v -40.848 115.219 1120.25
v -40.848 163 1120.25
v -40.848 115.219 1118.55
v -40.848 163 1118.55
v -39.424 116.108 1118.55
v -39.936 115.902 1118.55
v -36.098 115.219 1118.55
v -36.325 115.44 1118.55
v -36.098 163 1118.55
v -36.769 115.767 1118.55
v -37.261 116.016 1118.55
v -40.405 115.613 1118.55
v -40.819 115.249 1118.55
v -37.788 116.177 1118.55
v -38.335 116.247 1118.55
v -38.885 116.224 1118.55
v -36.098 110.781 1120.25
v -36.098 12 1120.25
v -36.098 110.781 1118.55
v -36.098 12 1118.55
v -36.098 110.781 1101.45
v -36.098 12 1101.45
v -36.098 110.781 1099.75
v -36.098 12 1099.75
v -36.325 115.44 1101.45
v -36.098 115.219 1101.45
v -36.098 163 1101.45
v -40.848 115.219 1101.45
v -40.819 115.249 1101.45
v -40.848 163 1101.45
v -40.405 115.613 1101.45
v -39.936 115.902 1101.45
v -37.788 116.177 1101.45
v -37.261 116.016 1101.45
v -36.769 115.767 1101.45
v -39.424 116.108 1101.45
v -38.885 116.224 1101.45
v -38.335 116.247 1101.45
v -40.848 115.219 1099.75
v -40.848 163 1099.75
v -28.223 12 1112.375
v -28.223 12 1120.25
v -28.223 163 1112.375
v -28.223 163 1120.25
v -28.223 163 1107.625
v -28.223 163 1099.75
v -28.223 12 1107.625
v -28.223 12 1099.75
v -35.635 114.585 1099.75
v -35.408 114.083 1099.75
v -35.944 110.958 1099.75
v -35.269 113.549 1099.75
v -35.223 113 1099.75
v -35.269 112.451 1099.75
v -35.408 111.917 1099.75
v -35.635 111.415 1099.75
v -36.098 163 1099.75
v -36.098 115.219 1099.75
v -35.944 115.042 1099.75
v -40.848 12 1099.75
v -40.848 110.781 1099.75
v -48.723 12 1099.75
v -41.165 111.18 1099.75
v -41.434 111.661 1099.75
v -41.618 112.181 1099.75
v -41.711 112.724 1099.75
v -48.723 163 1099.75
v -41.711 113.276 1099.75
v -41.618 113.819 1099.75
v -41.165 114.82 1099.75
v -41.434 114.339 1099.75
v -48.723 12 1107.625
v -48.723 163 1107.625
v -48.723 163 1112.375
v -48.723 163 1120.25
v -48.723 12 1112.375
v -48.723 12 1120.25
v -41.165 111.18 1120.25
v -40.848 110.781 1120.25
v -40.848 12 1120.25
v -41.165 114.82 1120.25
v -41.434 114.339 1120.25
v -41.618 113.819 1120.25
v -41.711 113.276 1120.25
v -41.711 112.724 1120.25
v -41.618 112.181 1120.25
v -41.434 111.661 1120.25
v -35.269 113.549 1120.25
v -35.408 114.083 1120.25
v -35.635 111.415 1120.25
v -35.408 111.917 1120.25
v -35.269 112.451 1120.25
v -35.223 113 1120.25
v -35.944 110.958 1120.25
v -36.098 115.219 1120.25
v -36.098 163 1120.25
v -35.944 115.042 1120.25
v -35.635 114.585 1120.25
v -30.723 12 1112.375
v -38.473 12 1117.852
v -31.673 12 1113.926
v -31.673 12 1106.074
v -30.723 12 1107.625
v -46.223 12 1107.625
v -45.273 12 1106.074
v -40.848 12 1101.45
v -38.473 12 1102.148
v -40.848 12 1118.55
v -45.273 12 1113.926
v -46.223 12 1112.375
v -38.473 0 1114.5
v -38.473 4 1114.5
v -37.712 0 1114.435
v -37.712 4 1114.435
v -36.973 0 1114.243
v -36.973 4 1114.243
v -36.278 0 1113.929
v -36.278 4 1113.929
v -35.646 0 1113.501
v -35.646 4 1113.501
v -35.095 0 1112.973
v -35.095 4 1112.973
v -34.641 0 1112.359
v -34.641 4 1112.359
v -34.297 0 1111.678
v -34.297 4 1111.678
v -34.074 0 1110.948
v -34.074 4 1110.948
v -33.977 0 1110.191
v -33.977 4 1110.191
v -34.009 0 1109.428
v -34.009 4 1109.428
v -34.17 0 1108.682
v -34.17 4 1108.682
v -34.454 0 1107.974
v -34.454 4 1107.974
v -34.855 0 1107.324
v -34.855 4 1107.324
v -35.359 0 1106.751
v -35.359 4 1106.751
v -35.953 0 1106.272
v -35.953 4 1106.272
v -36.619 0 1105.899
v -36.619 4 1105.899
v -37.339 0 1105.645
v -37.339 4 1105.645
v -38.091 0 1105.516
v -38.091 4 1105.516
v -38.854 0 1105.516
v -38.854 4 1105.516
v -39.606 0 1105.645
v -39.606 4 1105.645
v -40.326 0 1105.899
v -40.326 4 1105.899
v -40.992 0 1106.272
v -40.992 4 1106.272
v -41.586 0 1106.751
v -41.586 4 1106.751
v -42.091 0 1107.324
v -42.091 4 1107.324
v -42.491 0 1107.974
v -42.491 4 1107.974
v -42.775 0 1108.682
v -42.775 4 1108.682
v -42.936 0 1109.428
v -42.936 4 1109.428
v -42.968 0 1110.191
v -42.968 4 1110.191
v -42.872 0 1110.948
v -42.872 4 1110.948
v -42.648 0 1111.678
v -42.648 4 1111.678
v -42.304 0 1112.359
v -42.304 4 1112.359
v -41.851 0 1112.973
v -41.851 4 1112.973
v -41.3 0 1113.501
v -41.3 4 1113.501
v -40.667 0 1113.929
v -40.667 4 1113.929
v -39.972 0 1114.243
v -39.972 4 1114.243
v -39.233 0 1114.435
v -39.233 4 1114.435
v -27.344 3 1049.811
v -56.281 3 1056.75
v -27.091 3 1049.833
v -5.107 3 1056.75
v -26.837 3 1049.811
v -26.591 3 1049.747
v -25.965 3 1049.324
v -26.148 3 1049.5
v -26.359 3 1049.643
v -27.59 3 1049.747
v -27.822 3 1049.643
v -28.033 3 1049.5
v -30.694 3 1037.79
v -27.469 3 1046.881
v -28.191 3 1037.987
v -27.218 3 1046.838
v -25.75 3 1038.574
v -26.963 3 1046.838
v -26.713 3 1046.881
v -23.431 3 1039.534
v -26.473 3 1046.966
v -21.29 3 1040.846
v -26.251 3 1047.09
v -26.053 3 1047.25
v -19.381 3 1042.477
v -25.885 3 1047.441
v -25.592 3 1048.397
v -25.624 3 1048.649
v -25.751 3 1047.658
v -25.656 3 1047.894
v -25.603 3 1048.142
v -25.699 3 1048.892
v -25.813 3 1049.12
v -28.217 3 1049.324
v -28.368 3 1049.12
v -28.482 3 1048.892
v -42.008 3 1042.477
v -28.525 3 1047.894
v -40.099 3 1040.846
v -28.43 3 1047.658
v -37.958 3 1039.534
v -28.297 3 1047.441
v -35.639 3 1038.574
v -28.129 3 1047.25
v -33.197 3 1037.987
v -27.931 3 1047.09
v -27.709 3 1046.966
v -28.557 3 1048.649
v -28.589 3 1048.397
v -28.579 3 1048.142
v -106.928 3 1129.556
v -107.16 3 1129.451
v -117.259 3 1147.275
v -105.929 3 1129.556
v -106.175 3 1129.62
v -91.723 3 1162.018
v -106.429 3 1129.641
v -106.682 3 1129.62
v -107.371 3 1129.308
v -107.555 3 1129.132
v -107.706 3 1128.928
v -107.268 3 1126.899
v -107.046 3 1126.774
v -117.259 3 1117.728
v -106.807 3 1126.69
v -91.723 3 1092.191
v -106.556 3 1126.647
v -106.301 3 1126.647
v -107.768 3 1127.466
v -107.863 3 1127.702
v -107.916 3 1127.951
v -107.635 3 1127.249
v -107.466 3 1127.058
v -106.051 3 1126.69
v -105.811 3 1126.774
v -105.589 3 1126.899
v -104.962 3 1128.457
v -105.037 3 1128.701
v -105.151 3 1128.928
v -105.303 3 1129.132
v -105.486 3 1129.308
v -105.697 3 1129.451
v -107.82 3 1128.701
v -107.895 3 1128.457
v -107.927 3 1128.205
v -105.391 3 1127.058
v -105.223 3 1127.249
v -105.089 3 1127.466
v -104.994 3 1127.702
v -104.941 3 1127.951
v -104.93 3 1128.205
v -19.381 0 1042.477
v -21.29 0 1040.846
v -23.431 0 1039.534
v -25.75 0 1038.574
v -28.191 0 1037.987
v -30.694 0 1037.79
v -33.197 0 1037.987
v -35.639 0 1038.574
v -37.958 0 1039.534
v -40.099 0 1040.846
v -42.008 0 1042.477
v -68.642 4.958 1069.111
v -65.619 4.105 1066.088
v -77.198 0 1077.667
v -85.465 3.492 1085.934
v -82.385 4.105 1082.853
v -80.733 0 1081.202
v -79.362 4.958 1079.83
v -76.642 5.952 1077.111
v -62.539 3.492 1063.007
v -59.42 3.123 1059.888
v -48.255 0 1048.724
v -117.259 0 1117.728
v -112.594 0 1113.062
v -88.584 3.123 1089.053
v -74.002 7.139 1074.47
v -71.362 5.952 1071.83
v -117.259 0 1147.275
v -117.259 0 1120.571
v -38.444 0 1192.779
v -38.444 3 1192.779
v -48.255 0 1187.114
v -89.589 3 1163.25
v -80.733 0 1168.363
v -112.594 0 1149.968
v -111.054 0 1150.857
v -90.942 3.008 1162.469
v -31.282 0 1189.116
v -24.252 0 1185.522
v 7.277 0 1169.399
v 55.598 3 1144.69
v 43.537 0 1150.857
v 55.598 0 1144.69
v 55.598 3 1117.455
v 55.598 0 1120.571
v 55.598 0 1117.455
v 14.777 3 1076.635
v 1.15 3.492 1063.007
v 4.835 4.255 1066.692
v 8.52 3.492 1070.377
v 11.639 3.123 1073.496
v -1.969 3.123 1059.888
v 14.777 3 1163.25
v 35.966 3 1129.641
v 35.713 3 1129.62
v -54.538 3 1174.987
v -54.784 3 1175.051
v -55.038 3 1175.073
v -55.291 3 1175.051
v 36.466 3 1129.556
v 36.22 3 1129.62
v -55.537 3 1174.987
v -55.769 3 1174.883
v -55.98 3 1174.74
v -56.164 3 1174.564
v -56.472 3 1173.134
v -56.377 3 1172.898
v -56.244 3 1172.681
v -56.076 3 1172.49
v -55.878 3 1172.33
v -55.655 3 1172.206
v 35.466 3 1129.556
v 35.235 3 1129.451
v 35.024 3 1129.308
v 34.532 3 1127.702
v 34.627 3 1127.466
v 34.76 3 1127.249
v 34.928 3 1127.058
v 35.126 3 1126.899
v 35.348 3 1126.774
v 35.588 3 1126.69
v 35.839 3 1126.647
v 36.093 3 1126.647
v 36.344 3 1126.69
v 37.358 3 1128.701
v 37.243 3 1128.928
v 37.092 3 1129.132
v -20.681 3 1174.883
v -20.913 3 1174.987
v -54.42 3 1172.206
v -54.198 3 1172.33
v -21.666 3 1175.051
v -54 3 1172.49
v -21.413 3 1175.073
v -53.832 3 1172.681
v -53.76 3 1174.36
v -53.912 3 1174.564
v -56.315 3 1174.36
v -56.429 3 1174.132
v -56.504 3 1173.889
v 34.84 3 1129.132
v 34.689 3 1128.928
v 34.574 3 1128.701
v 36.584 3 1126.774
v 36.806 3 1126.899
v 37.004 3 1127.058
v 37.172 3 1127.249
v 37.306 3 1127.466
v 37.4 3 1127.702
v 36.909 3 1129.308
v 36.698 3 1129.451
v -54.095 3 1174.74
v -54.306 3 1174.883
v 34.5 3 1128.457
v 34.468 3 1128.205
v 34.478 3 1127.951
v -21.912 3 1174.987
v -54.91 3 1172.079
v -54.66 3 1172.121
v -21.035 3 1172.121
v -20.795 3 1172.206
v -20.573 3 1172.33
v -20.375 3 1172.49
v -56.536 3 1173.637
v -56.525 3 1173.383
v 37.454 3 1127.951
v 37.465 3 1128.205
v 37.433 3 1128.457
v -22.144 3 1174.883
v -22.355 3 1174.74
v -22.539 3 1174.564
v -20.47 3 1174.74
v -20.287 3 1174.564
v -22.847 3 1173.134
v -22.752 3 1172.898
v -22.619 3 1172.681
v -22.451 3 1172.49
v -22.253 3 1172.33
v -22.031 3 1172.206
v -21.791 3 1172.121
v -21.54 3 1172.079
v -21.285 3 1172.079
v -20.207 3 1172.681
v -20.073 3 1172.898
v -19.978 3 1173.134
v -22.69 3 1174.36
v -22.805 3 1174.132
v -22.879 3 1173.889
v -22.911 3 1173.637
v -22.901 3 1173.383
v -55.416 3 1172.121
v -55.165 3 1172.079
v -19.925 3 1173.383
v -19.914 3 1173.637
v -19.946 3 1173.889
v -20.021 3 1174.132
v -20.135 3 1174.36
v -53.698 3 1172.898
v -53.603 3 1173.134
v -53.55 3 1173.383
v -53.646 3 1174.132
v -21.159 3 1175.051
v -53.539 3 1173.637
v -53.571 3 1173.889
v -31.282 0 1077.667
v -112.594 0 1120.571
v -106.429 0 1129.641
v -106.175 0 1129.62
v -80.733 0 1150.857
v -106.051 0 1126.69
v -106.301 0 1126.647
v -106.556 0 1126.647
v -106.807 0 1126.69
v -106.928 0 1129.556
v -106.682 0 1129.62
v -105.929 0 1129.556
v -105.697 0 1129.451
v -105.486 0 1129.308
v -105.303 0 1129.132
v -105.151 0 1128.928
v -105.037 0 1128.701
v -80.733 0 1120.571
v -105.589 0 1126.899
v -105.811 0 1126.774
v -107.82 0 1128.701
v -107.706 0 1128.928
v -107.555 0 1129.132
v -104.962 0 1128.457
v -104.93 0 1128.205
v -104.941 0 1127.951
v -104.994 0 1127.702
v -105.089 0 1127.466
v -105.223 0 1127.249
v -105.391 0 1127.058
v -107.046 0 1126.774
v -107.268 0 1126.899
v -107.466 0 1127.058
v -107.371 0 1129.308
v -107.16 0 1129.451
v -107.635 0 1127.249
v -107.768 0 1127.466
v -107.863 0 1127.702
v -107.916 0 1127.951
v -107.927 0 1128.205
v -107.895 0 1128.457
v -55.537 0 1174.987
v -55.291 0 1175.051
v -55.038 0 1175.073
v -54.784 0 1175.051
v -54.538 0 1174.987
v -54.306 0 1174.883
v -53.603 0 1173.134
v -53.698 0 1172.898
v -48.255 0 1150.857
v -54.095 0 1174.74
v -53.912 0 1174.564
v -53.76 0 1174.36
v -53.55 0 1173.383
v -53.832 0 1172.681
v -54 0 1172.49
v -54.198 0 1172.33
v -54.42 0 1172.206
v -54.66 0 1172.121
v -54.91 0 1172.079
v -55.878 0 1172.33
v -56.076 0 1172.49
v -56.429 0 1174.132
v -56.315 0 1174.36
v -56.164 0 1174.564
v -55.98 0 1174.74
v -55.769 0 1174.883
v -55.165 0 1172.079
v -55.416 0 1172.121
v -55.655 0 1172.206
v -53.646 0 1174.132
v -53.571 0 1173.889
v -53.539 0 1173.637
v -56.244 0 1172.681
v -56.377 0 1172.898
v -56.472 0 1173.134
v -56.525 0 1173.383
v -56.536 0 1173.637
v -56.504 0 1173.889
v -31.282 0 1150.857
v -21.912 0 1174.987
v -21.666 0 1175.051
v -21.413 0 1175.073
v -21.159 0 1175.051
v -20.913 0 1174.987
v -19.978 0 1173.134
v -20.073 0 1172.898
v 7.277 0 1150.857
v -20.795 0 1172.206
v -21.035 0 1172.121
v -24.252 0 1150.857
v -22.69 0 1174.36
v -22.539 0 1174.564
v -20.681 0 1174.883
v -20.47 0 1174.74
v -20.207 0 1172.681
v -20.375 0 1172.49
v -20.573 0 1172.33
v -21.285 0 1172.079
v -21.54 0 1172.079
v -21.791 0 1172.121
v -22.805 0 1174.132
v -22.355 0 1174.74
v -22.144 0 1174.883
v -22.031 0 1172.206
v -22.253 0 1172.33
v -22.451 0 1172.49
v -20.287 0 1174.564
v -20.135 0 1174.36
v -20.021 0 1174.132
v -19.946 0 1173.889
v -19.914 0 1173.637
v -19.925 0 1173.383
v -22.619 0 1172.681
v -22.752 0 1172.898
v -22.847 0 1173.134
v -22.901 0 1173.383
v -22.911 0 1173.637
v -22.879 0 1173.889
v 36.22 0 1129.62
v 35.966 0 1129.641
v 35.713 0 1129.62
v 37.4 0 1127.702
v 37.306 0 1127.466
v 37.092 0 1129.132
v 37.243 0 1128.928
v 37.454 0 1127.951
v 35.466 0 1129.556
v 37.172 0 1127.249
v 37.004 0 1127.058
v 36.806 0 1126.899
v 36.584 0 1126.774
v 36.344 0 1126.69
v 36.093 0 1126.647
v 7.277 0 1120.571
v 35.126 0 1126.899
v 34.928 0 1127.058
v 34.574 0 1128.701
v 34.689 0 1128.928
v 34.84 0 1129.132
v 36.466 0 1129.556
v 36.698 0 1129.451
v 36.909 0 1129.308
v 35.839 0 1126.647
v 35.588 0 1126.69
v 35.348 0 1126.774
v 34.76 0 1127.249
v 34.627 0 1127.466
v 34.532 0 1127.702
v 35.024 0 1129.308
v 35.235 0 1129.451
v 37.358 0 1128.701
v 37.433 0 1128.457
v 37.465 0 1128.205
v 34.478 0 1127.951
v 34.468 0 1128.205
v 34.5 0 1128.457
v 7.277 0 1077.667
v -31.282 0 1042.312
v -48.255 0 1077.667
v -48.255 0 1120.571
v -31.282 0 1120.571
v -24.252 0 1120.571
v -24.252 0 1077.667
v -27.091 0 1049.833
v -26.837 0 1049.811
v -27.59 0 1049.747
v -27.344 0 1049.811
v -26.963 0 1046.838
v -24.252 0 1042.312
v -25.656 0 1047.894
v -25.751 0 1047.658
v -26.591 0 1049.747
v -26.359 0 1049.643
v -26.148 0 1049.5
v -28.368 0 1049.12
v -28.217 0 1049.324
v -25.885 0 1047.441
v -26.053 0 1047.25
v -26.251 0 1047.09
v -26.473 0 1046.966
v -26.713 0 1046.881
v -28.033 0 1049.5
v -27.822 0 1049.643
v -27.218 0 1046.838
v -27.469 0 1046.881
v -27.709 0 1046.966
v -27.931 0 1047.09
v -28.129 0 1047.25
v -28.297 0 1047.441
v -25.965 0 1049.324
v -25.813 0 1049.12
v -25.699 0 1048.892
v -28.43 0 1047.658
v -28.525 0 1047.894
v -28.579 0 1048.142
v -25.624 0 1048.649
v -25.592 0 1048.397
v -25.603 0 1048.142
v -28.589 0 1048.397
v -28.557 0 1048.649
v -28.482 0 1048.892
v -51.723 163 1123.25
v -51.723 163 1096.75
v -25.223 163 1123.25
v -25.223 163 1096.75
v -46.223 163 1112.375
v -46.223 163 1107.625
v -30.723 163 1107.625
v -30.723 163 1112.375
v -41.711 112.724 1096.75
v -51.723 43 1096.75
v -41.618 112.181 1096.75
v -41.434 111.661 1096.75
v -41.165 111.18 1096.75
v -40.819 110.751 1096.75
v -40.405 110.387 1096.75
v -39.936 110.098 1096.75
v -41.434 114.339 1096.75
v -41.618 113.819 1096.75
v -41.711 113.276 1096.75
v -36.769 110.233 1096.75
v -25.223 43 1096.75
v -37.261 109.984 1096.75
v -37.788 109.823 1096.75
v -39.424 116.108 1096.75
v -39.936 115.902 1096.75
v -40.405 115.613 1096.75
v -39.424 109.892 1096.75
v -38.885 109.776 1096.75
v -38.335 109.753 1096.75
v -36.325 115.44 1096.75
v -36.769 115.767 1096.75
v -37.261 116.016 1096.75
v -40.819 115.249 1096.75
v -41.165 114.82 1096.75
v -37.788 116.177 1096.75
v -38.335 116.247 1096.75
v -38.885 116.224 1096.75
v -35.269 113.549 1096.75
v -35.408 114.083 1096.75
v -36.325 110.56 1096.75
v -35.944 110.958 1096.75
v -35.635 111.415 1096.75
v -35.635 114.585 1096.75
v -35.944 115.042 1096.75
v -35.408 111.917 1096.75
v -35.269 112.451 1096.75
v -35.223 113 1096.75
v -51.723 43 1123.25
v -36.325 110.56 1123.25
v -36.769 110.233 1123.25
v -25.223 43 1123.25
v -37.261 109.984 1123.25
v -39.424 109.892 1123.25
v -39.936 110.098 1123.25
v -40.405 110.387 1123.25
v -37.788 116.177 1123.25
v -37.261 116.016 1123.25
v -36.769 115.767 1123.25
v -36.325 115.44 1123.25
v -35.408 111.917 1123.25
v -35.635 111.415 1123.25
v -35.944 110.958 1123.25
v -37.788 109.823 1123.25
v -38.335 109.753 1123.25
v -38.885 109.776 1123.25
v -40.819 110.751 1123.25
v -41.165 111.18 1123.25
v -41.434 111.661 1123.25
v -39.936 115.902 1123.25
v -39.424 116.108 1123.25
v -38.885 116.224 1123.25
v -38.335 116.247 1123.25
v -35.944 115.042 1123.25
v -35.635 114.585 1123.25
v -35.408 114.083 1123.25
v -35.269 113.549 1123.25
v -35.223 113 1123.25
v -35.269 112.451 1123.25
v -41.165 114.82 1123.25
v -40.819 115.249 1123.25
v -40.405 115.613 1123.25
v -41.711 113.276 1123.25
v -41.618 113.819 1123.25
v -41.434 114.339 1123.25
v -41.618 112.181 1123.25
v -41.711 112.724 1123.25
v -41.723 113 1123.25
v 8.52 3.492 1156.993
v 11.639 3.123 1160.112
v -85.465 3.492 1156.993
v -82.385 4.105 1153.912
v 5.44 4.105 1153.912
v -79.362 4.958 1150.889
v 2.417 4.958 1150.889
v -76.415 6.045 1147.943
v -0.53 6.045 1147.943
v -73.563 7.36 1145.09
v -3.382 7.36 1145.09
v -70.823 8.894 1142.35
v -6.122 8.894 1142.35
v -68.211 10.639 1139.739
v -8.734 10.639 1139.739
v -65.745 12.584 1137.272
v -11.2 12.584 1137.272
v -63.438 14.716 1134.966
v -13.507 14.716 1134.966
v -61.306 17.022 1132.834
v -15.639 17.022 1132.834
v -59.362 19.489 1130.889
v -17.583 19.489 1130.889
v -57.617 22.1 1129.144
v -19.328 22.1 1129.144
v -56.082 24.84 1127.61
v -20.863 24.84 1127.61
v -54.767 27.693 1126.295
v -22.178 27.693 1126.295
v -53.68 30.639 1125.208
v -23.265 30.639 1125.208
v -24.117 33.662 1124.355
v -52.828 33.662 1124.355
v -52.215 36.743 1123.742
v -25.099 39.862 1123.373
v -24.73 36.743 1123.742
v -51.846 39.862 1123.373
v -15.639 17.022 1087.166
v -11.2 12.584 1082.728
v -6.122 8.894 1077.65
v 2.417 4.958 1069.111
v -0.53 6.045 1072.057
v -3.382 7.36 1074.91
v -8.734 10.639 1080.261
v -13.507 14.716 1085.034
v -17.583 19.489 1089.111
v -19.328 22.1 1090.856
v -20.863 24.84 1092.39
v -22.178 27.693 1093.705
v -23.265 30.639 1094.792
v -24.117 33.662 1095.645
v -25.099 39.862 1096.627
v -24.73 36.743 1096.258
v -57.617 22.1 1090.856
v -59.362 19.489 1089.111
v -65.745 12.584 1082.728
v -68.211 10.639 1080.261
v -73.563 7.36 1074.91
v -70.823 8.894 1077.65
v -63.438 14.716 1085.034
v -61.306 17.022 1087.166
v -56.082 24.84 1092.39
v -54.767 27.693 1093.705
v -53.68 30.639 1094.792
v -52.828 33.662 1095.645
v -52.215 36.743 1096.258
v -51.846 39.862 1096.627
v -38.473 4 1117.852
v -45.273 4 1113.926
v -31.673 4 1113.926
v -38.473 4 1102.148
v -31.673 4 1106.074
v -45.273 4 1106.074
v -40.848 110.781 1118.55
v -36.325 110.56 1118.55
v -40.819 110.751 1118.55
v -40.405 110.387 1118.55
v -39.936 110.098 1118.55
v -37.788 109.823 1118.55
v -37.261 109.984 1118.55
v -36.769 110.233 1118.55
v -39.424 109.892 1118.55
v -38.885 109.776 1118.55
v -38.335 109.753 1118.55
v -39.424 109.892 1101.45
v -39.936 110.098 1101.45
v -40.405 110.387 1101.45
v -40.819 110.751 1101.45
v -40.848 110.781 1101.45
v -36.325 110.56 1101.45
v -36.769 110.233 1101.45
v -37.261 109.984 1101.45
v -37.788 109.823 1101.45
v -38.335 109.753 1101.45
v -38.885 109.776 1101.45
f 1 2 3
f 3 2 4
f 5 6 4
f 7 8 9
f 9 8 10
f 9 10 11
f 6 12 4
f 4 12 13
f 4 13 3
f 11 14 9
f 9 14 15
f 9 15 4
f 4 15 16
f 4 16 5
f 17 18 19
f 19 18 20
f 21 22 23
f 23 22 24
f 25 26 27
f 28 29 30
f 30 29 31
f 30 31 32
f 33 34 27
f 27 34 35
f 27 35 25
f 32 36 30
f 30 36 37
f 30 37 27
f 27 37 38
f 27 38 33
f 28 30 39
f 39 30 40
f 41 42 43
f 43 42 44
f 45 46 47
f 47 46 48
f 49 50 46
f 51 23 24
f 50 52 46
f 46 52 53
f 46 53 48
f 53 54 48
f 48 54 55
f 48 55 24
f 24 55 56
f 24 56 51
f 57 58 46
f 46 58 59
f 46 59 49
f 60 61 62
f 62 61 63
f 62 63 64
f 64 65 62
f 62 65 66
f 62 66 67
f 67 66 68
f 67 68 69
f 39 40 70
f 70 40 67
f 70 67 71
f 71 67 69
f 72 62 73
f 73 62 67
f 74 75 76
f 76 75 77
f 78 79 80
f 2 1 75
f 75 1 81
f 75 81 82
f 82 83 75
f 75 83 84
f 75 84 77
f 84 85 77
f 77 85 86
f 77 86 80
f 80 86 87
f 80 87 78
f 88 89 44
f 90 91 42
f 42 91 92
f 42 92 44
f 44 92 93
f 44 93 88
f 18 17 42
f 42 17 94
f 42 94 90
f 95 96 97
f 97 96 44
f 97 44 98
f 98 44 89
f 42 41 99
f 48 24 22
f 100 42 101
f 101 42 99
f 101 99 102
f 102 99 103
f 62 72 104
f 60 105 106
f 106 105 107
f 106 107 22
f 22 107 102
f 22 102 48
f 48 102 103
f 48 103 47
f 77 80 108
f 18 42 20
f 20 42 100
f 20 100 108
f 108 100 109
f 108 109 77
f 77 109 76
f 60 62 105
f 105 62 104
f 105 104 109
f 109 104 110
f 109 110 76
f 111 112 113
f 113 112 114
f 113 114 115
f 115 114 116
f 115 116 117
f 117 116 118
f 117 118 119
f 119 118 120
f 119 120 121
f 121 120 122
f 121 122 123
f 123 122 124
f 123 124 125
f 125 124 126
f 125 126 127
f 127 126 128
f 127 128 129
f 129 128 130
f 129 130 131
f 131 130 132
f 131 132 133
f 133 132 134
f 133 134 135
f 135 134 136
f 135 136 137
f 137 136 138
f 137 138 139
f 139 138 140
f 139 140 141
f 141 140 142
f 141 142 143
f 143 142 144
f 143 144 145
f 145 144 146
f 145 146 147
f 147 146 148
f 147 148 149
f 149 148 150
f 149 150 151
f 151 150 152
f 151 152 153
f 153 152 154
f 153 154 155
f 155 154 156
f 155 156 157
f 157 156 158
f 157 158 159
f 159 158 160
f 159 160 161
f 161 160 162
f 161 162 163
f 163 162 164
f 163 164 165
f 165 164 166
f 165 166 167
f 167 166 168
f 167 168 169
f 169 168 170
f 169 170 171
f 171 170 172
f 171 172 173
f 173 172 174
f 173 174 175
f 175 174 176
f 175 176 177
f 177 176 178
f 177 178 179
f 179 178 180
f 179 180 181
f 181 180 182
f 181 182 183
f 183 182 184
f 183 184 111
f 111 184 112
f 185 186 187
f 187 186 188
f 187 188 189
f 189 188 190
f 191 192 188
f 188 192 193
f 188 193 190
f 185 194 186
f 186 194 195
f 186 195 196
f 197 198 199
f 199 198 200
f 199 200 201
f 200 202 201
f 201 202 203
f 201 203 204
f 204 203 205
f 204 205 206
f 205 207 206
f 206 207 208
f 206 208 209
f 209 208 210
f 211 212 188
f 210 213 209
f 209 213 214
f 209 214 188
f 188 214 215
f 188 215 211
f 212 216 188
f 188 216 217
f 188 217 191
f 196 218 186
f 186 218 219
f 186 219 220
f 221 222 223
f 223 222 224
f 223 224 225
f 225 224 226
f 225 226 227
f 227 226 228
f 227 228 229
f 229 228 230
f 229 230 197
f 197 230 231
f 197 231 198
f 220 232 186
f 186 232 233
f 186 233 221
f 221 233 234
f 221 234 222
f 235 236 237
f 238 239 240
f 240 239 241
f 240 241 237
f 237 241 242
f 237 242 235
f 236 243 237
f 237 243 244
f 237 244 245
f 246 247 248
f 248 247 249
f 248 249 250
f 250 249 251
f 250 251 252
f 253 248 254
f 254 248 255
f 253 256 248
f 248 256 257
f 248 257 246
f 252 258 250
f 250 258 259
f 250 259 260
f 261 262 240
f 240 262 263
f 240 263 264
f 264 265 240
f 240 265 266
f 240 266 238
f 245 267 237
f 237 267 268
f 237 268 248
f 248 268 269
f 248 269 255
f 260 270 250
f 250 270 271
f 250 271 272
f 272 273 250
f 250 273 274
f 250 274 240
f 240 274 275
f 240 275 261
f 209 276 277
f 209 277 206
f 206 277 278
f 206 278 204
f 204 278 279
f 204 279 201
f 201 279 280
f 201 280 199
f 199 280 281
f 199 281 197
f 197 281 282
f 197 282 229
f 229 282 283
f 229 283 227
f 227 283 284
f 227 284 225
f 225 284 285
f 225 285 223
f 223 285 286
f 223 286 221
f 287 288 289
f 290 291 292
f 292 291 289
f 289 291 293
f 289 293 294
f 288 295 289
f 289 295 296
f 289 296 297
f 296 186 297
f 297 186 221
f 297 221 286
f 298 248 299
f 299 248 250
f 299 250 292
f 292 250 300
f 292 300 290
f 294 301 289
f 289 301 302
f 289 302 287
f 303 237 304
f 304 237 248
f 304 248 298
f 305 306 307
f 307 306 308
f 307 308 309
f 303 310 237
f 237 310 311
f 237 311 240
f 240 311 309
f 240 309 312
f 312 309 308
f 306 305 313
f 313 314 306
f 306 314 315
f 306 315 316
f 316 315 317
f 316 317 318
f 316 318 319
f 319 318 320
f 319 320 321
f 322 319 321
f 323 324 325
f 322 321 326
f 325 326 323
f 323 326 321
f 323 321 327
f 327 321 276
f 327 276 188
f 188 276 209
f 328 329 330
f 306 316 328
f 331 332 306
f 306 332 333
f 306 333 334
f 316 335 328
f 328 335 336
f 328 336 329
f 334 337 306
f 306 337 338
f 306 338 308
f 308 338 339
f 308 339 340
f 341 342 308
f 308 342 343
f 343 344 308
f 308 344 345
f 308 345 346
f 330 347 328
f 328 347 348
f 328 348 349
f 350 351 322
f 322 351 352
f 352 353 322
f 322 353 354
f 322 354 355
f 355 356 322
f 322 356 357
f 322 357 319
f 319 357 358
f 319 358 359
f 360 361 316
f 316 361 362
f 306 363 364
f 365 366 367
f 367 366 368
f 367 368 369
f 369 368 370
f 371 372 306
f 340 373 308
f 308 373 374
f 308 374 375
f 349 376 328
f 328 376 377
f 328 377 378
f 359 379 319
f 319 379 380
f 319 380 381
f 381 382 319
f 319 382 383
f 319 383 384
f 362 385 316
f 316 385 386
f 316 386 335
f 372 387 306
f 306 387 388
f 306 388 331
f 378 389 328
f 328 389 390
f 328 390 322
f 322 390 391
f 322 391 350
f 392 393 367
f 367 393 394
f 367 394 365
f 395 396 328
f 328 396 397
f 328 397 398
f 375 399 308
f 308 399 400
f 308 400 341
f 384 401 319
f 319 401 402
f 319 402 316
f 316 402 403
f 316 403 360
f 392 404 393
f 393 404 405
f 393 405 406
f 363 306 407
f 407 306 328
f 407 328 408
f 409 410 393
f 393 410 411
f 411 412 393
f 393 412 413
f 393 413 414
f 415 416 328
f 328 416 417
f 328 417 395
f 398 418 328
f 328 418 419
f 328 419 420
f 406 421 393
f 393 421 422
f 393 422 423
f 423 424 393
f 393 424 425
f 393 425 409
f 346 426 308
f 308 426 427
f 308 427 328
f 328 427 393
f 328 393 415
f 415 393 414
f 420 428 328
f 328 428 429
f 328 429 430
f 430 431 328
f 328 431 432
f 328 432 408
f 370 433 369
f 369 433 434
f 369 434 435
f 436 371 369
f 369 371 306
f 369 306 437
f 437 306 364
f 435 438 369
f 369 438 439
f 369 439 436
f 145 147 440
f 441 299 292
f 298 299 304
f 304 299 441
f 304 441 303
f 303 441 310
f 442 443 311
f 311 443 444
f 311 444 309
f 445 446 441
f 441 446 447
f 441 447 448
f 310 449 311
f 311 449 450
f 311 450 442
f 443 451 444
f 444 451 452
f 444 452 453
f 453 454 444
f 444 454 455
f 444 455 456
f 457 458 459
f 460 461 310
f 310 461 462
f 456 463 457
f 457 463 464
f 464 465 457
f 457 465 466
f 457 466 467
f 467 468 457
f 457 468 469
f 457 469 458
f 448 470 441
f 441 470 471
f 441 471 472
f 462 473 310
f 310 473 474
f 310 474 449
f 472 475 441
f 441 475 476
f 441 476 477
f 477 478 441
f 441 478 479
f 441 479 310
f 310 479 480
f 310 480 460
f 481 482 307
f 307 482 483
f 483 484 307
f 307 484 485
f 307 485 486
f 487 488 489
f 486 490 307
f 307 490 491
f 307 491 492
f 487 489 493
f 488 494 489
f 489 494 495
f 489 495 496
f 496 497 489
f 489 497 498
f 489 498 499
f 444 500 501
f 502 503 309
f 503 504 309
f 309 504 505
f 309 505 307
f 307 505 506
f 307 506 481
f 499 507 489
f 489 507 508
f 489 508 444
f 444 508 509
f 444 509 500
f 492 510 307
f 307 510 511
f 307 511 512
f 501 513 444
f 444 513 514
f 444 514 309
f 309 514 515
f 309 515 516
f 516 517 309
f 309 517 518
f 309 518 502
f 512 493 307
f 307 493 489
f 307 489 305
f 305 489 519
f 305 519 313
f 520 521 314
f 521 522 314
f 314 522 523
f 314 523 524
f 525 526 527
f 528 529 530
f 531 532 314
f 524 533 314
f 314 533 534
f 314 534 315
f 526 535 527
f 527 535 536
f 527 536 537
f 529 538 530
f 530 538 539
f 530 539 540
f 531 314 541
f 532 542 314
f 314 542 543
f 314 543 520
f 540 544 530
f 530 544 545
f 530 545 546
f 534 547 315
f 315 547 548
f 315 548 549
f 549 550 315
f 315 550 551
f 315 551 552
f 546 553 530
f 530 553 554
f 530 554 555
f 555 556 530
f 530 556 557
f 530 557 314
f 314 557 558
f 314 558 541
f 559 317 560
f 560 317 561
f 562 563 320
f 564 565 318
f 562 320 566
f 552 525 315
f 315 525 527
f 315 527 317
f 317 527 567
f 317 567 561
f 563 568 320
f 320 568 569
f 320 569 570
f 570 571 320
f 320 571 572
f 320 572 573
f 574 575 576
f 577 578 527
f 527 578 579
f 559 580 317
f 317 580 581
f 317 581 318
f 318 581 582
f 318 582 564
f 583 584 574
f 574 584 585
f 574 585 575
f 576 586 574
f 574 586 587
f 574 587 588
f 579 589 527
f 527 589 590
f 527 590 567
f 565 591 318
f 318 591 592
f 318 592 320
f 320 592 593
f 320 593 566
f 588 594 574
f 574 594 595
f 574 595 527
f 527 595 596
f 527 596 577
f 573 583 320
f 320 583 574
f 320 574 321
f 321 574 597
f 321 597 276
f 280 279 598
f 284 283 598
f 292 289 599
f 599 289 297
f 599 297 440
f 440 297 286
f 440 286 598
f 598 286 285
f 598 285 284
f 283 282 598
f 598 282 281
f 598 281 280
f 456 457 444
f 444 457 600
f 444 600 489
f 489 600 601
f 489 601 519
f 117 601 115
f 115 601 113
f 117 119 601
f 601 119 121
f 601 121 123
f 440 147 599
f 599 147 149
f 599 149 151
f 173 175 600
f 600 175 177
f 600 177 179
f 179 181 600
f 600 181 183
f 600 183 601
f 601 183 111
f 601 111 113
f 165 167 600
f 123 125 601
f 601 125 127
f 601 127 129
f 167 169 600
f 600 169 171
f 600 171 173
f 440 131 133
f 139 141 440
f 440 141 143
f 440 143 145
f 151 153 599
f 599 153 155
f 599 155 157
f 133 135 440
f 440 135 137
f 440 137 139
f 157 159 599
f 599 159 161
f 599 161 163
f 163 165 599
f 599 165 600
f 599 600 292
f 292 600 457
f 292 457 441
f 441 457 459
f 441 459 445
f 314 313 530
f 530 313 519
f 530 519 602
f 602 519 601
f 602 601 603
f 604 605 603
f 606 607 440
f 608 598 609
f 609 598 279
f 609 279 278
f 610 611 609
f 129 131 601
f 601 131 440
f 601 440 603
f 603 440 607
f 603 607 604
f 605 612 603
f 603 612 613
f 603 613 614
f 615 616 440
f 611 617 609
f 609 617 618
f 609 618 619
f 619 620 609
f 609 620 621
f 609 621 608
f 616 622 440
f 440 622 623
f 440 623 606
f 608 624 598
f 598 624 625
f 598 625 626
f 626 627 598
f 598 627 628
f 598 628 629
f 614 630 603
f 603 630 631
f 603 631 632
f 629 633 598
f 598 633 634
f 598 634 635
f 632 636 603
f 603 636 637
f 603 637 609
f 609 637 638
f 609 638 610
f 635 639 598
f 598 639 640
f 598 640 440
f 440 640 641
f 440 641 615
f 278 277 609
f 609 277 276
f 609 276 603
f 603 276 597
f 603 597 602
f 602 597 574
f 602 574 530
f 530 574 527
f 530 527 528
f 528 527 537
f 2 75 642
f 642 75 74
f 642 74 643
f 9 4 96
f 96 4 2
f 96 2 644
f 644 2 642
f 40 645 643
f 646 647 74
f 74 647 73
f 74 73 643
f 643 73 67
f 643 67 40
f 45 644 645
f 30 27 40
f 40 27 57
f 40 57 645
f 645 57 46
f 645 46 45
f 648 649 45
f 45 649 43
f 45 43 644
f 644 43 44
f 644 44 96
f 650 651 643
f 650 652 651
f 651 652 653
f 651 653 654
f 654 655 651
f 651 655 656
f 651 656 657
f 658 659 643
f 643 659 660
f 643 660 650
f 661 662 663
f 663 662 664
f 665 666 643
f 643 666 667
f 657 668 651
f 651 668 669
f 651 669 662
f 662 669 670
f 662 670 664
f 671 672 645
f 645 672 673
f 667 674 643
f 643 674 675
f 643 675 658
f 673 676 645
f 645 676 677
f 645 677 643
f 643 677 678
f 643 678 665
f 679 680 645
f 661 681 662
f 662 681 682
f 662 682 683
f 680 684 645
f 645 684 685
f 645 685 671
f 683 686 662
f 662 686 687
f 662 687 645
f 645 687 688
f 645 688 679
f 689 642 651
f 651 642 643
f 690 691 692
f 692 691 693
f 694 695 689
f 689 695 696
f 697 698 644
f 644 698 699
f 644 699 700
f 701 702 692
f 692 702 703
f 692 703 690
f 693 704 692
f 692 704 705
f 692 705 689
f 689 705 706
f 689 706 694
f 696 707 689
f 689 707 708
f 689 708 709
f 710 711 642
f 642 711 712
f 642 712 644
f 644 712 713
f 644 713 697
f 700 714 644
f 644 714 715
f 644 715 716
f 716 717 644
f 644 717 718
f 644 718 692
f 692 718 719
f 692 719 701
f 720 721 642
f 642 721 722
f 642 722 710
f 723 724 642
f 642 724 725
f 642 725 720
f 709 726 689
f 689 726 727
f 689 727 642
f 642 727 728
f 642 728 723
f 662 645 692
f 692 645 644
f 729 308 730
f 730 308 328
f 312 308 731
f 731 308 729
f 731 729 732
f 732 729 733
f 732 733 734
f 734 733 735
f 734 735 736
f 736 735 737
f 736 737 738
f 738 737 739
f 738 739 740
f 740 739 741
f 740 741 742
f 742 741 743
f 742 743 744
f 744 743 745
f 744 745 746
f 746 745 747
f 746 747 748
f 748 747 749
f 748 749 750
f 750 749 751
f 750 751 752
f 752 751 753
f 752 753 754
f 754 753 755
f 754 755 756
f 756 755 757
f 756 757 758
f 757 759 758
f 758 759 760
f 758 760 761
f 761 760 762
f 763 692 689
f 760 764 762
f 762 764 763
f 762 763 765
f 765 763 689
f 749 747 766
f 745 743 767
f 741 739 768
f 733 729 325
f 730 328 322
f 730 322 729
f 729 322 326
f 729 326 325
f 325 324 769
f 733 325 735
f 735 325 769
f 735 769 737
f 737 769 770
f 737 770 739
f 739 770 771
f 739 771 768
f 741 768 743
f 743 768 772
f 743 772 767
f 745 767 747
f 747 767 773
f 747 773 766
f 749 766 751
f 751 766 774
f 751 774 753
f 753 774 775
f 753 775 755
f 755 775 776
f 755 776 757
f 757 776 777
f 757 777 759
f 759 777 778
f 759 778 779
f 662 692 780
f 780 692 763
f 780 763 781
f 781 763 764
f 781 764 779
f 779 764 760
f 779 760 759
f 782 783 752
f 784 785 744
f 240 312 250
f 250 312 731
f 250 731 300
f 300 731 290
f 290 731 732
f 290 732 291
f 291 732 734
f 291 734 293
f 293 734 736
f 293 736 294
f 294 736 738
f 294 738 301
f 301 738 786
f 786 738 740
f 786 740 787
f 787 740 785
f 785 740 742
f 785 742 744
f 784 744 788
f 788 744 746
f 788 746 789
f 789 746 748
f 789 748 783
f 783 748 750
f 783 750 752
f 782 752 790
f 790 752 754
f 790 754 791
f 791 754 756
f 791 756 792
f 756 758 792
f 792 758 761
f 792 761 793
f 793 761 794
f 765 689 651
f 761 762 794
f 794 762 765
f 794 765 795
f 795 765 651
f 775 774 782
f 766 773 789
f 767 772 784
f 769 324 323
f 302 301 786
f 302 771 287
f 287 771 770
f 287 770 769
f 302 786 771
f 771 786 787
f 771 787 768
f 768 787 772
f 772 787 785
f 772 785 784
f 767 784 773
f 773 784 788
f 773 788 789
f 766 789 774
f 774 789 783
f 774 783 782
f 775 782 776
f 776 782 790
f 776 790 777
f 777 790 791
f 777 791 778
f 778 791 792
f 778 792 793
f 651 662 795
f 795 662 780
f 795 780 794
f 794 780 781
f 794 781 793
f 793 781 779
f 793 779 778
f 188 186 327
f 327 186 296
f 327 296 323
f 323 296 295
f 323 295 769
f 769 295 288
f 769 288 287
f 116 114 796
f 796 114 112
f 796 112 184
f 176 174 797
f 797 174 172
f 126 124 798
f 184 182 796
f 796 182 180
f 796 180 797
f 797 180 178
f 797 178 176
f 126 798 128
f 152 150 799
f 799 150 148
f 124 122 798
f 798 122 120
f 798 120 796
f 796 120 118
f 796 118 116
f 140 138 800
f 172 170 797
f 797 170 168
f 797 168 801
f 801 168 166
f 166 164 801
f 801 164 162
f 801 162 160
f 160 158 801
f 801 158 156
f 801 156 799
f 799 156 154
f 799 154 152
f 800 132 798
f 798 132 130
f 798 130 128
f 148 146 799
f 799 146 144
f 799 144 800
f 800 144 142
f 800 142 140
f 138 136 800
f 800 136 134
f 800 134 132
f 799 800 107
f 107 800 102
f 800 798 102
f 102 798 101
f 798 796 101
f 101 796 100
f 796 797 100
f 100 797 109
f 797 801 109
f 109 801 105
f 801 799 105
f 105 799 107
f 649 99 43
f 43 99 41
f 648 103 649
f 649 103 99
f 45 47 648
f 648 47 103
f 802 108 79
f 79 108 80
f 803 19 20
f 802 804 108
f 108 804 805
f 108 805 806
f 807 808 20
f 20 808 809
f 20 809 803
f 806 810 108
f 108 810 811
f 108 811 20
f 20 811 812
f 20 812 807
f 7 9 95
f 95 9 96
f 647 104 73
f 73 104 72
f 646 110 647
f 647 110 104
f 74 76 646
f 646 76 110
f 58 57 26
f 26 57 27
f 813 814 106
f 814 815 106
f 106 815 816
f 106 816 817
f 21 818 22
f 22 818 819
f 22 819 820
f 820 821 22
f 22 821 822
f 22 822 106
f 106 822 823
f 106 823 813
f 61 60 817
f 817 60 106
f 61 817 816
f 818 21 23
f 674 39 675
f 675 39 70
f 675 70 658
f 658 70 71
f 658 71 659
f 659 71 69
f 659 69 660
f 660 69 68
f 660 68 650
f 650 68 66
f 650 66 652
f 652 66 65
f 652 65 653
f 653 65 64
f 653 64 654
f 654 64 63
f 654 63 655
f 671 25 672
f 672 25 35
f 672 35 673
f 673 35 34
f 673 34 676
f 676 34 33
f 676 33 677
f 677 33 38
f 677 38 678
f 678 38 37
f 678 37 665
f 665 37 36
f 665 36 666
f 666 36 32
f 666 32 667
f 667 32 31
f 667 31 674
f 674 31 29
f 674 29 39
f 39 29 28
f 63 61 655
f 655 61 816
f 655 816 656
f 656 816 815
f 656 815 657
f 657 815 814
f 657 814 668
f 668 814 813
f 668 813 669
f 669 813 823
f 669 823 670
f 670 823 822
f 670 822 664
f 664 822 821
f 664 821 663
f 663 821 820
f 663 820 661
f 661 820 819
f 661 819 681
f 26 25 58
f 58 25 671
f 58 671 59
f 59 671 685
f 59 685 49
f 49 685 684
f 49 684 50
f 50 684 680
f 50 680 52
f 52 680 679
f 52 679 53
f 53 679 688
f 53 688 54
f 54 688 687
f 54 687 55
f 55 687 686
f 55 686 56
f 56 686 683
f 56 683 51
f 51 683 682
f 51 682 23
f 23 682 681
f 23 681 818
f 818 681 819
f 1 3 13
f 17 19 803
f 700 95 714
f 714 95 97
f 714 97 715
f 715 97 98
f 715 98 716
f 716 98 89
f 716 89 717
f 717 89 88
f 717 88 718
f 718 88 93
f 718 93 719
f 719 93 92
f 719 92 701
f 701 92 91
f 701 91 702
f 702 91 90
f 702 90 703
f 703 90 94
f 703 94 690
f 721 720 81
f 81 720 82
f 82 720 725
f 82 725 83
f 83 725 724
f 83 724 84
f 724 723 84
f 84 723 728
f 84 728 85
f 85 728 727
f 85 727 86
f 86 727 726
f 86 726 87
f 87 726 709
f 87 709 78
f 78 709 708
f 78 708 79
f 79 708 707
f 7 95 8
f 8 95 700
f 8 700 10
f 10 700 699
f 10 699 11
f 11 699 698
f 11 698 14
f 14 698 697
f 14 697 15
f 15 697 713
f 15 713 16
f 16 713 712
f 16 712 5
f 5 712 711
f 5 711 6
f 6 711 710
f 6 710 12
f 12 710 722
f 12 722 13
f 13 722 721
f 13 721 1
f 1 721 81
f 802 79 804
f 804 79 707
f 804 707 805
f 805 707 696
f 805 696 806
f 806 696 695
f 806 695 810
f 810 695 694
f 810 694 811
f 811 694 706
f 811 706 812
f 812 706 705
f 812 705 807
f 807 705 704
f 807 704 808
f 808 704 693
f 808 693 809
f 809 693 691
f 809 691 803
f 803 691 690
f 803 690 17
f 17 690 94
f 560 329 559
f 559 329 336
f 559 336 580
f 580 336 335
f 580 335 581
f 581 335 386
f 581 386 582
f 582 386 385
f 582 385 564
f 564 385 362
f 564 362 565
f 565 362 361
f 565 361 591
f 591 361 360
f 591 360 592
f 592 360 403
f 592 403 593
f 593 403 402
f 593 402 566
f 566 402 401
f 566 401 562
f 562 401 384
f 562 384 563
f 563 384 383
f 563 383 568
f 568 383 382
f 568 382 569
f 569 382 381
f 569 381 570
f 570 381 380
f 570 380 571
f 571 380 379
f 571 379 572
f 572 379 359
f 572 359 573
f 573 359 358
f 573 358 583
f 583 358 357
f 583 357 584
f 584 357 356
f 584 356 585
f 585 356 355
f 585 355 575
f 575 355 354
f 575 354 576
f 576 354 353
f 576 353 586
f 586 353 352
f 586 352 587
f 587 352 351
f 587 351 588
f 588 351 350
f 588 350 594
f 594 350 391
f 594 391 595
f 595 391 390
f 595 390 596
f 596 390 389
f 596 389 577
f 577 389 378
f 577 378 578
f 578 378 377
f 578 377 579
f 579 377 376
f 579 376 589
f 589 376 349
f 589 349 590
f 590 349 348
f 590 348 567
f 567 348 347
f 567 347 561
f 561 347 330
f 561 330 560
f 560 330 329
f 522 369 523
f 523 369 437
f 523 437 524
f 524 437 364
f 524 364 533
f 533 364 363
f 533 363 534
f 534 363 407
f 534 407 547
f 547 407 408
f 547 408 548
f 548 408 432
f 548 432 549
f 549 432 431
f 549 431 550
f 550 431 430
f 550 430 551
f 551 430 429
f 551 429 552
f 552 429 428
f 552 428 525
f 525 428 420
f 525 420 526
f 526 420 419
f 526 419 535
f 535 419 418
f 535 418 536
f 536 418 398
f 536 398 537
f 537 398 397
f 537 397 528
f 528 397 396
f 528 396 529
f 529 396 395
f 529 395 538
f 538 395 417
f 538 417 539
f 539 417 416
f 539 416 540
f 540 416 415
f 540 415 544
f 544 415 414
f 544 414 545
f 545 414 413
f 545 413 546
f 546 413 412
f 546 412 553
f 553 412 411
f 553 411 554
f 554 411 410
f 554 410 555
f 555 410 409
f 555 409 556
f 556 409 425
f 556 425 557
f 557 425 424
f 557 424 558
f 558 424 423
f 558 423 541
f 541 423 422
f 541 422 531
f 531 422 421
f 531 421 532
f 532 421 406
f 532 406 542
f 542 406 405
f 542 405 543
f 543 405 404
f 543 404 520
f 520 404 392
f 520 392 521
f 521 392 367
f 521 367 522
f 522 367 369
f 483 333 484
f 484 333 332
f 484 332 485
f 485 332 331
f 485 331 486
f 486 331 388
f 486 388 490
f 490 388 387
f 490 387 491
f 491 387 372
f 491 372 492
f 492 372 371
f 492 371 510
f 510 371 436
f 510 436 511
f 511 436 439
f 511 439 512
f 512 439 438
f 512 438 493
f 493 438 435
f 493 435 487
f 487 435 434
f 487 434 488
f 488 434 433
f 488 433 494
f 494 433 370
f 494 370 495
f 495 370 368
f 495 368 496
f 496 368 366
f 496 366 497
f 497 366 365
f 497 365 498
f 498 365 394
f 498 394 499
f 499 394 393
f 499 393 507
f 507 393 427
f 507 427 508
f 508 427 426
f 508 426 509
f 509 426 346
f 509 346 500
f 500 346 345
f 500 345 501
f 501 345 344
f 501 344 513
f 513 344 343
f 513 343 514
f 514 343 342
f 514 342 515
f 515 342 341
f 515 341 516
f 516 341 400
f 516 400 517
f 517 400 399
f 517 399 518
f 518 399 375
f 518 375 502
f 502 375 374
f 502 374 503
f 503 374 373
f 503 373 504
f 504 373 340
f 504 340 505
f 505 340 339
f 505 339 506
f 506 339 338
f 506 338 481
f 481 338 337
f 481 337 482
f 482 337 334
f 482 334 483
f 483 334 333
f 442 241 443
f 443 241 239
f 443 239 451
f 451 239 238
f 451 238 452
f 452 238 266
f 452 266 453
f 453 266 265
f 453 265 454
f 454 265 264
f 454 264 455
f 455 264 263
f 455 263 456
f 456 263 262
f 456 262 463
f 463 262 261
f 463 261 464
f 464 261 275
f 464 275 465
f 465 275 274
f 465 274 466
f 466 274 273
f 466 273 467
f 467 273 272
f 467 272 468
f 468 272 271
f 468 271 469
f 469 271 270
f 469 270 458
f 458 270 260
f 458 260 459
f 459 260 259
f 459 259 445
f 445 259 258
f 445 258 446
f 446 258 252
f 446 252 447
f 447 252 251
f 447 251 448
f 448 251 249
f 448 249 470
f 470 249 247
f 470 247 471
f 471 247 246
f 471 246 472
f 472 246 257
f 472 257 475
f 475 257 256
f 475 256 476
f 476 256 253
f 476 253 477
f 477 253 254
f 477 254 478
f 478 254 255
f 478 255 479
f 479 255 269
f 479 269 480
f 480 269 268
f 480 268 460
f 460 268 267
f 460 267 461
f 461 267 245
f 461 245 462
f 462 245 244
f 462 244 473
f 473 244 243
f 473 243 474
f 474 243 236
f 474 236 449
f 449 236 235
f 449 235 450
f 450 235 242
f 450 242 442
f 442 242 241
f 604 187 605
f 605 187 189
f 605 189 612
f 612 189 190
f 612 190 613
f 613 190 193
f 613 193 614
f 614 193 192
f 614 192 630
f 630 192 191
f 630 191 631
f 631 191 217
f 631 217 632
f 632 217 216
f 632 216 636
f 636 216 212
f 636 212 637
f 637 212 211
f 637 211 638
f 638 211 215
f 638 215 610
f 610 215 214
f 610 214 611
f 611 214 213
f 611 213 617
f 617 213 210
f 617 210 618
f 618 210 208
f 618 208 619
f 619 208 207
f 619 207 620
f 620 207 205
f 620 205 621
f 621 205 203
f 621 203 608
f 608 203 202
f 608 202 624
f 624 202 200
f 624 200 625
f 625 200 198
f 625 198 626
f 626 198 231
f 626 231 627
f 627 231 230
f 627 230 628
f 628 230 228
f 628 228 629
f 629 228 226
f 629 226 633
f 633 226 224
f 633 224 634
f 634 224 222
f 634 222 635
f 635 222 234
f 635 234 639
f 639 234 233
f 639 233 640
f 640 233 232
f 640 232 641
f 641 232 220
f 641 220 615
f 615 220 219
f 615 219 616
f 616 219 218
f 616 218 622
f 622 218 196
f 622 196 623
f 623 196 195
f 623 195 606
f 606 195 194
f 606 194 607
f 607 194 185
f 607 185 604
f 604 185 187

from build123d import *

# Parameters (mm, degrees)
SALIENTE_EXTRUIR1_DEPTH    = 3
CROQUIS2_W                 = 26.5
CROQUIS2_H                 = 26.5
CROQUIS2_W_2               = 20.5
CROQUIS2_H_2               = 20.5
SALIENTE_EXTRUIR2_DEPTH    = 160
REDONDEO1_R                = 40
CROQUIS3_W                 = 20.5
CROQUIS3_H                 = 20.5
SALIENTE_EXTRUIR3_DEPTH    = 12
CORTAR_EXTRUIR1_DEPTH      = 1209.003362467
CORTAR_EXTRUIR1_DEPTH_BACK = 1209.003362467
CROQUIS5_R                 = 4.5
CORTAR_EXTRUIR2_DEPTH      = 8
CROQUIS7_W                 = 4.75
CROQUIS7_H                 = 1.7
CROQUIS7_W_2               = 2.5
CROQUIS7_H_2               = 4.75
SALIENTE_EXTRUIR4_DEPTH    = 151
CORTAR_EXTRUIR4_DEPTH      = 219.224669206
CORTAR_EXTRUIR4_DEPTH_BACK = 219.224669206
CROQUIS8_R                 = 3.25
CROQUIS9_R                 = 1.5
CORTAR_EXTRUIR5_DEPTH      = 1210.16133073


with BuildPart() as part:
    # Croquis1 → Saliente-Extruir1 (new body)
    with BuildSketch(Plane(origin=(0, 0, 0), x_dir=(1, 0, 0), z_dir=(0, 1, 0))):
        with BuildLine():
            Line((-42.008082749, -1042.476659403), (-117.258933696, -1117.72751035))
            Line((-117.258933696, -1117.72751035), (-117.258933696, -1147.274817598))
            Line((-117.258933696, -1147.274817598), (-38.443578675, -1192.778884036))
            Line((-38.443578675, -1192.778884036), (55.597605894, -1144.689960025))
            Line((55.597605894, -1144.689960025), (55.597605894, -1117.454931048))
            Line((55.597605894, -1117.454931048), (-19.380665751, -1042.476659403))
            ThreePointArc((-19.380665751, -1042.476659403), (-30.69437425, -1037.790367902), (-42.008082749, -1042.476659403))
        make_face()
    extrude(amount=SALIENTE_EXTRUIR1_DEPTH)

    # Croquis2 → Saliente-Extruir2 (add)
    with BuildSketch(Plane(origin=(0, 3, 0), x_dir=(1, 0, 0), z_dir=(0, 1, 0))):
        with Locations((-38.472548844, -1110)):
            Rectangle(CROQUIS2_W, CROQUIS2_H)
        with Locations((-38.472548844, -1110)):
            Rectangle(CROQUIS2_W_2, CROQUIS2_H_2, mode=Mode.SUBTRACT)
    extrude(amount=SALIENTE_EXTRUIR2_DEPTH)

    # Redondeo1
    # the kernel refuses this fillet: 40 mm, written as the material it adds along each edge
    with BuildSketch(Plane(origin=(-25.222548844, 3, 1096.75), x_dir=(0, 0, -1), z_dir=(-1, 0, 0)), Plane(origin=(-51.722548844, 3, 1096.75), x_dir=(-1, 0, 0), z_dir=(0, 0, 1)), Plane(origin=(-51.722548844, 3, 1123.25), x_dir=(0, 0, 1), z_dir=(1, 0, 0)), Plane(origin=(-25.222548844, 3, 1123.25), x_dir=(1, 0, 0), z_dir=(0, 0, -1))) as redondeo1_piece_1:
        with BuildLine():
            CenterArc((REDONDEO1_R, -REDONDEO1_R), REDONDEO1_R, 90, 90)
            Line((0, -REDONDEO1_R), (-REDONDEO1_R * 0.02, -REDONDEO1_R))
            Line((-REDONDEO1_R * 0.02, -REDONDEO1_R), (-REDONDEO1_R * 0.02, REDONDEO1_R * 0.02))
            Line((-REDONDEO1_R * 0.02, REDONDEO1_R * 0.02), (REDONDEO1_R, REDONDEO1_R * 0.02))
            Line((REDONDEO1_R, REDONDEO1_R * 0.02), (REDONDEO1_R, 0))
        make_face()
    extrude(amount=26.5)
    with BuildSketch(Plane(origin=(-25.222548844, 3, 1123.25), x_dir=(1, 0, 0), z_dir=(0, 0, -1))) as redondeo1_piece_2a_section:
        with BuildLine():
            CenterArc((REDONDEO1_R, -REDONDEO1_R), REDONDEO1_R, 90, 90)
            Line((0, -REDONDEO1_R), (-REDONDEO1_R * 0.02, -REDONDEO1_R))
            Line((-REDONDEO1_R * 0.02, -REDONDEO1_R), (-REDONDEO1_R * 0.02, REDONDEO1_R * 0.02))
            Line((-REDONDEO1_R * 0.02, REDONDEO1_R * 0.02), (REDONDEO1_R, REDONDEO1_R * 0.02))
            Line((REDONDEO1_R, REDONDEO1_R * 0.02), (REDONDEO1_R, 0))
        make_face()
    redondeo1_piece_2a = extrude(amount=66.5, mode=Mode.PRIVATE)
    redondeo1_piece_2a = split(redondeo1_piece_2a, bisect_by=Plane(origin=(-0.706292993, 12.233154951, 1061.151032162), z_dir=(-0.7071067811865465, 0, 0.7071067811865487)), keep=Keep.TOP, mode=Mode.PRIVATE)
    redondeo1_piece_2a = split(redondeo1_piece_2a, bisect_by=Plane(origin=(-16.60527909, 12.233154951, 1096.75), z_dir=(0, 0, -1)), keep=Keep.TOP, mode=Mode.PRIVATE)
    with BuildSketch(Plane(origin=(14.777451156, 3, 1096.75), x_dir=(0, 0, -1), z_dir=(-1, 0, 0))) as redondeo1_piece_2b_section:
        with BuildLine():
            CenterArc((REDONDEO1_R, -REDONDEO1_R), REDONDEO1_R, 90, 90)
            Line((0, -REDONDEO1_R), (-REDONDEO1_R * 0.02, -REDONDEO1_R))
            Line((-REDONDEO1_R * 0.02, -REDONDEO1_R), (-REDONDEO1_R * 0.02, REDONDEO1_R * 0.02))
            Line((-REDONDEO1_R * 0.02, REDONDEO1_R * 0.02), (REDONDEO1_R, REDONDEO1_R * 0.02))
            Line((REDONDEO1_R, REDONDEO1_R * 0.02), (REDONDEO1_R, 0))
        make_face()
    redondeo1_piece_2b = extrude(amount=66.5, mode=Mode.PRIVATE)
    redondeo1_piece_2b = split(redondeo1_piece_2b, bisect_by=Plane(origin=(10.376418995, 12.233154951, 1072.233744149), z_dir=(-0.7071067811865465, 0, 0.7071067811865487)), keep=Keep.TOP, mode=Mode.PRIVATE)
    redondeo1_piece_2b = split(redondeo1_piece_2b, bisect_by=Plane(origin=(-25.222548844, 12.233154951, 1088.132730246), z_dir=(1, 0, 0)), keep=Keep.TOP, mode=Mode.PRIVATE)
    redondeo1_piece_2 = redondeo1_piece_2a & redondeo1_piece_2b
    add(redondeo1_piece_2)
    with BuildSketch(Plane(origin=(-51.722548844, 3, 1056.75), x_dir=(-1, 0, 0), z_dir=(0, 0, 1))) as redondeo1_piece_3a_section:
        with BuildLine():
            CenterArc((REDONDEO1_R, -REDONDEO1_R), REDONDEO1_R, 90, 90)
            Line((0, -REDONDEO1_R), (-REDONDEO1_R * 0.02, -REDONDEO1_R))
            Line((-REDONDEO1_R * 0.02, -REDONDEO1_R), (-REDONDEO1_R * 0.02, REDONDEO1_R * 0.02))
            Line((-REDONDEO1_R * 0.02, REDONDEO1_R * 0.02), (REDONDEO1_R, REDONDEO1_R * 0.02))
            Line((REDONDEO1_R, REDONDEO1_R * 0.02), (REDONDEO1_R, 0))
        make_face()
    redondeo1_piece_3a = extrude(amount=66.5, mode=Mode.PRIVATE)
    redondeo1_piece_3a = split(redondeo1_piece_3a, bisect_by=Plane(origin=(-68.586290047, 13.081785703, 1069.0548667), z_dir=(0.70710678118655, 0, 0.7071067811865451)), keep=Keep.TOP, mode=Mode.PRIVATE)
    redondeo1_piece_3a = split(redondeo1_piece_3a, bisect_by=Plane(origin=(-58.896332092, 13.081785703, 1096.75), z_dir=(0, 0, -1)), keep=Keep.TOP, mode=Mode.PRIVATE)
    with BuildSketch(Plane(origin=(-25.222548844, 3, 1096.75), x_dir=(0, 0, -1), z_dir=(-1, 0, 0))) as redondeo1_piece_3b_section:
        with BuildLine():
            CenterArc((REDONDEO1_R, -REDONDEO1_R), REDONDEO1_R, 90, 90)
            Line((0, -REDONDEO1_R), (-REDONDEO1_R * 0.02, -REDONDEO1_R))
            Line((-REDONDEO1_R * 0.02, -REDONDEO1_R), (-REDONDEO1_R * 0.02, REDONDEO1_R * 0.02))
            Line((-REDONDEO1_R * 0.02, REDONDEO1_R * 0.02), (REDONDEO1_R, REDONDEO1_R * 0.02))
            Line((REDONDEO1_R, REDONDEO1_R * 0.02), (REDONDEO1_R, 0))
        make_face()
    redondeo1_piece_3b = extrude(amount=66.5, mode=Mode.PRIVATE)
    redondeo1_piece_3b = split(redondeo1_piece_3b, bisect_by=Plane(origin=(-79.417682144, 13.081785703, 1079.886258797), z_dir=(0.70710678118655, 0, 0.7071067811865451)), keep=Keep.TOP, mode=Mode.PRIVATE)
    redondeo1_piece_3b = split(redondeo1_piece_3b, bisect_by=Plane(origin=(-51.722548844, 13.081785703, 1089.576216751), z_dir=(-1, 0, 0)), keep=Keep.TOP, mode=Mode.PRIVATE)
    redondeo1_piece_3 = redondeo1_piece_3a & redondeo1_piece_3b
    add(redondeo1_piece_3)
    with BuildSketch(Plane(origin=(-51.722548844, 3, 1096.75), x_dir=(-1, 0, 0), z_dir=(0, 0, 1))) as redondeo1_piece_4a_section:
        with BuildLine():
            CenterArc((REDONDEO1_R, -REDONDEO1_R), REDONDEO1_R, 90, 90)
            Line((0, -REDONDEO1_R), (-REDONDEO1_R * 0.02, -REDONDEO1_R))
            Line((-REDONDEO1_R * 0.02, -REDONDEO1_R), (-REDONDEO1_R * 0.02, REDONDEO1_R * 0.02))
            Line((-REDONDEO1_R * 0.02, REDONDEO1_R * 0.02), (REDONDEO1_R, REDONDEO1_R * 0.02))
            Line((REDONDEO1_R, REDONDEO1_R * 0.02), (REDONDEO1_R, 0))
        make_face()
    redondeo1_piece_4a = extrude(amount=66.5, mode=Mode.PRIVATE)
    redondeo1_piece_4a = split(redondeo1_piece_4a, bisect_by=Plane(origin=(-76.640371014, 12.056420545, 1170.725955696), z_dir=(0.4999999999999994, 0, -0.866025403784439)), keep=Keep.TOP, mode=Mode.PRIVATE)
    redondeo1_piece_4a = split(redondeo1_piece_4a, bisect_by=Plane(origin=(-60.776383391, 12.056420545, 1123.25), z_dir=(0, 0, 1)), keep=Keep.TOP, mode=Mode.PRIVATE)
    with BuildSketch(Plane(origin=(-91.722548844, 3, 1123.25), x_dir=(0, 0, 1), z_dir=(1, 0, 0))) as redondeo1_piece_4b_section:
        with BuildLine():
            CenterArc((REDONDEO1_R, -REDONDEO1_R), REDONDEO1_R, 90, 90)
            Line((0, -REDONDEO1_R), (-REDONDEO1_R * 0.02, -REDONDEO1_R))
            Line((-REDONDEO1_R * 0.02, -REDONDEO1_R), (-REDONDEO1_R * 0.02, REDONDEO1_R * 0.02))
            Line((-REDONDEO1_R * 0.02, REDONDEO1_R * 0.02), (REDONDEO1_R, REDONDEO1_R * 0.02))
            Line((REDONDEO1_R, REDONDEO1_R * 0.02), (REDONDEO1_R, 0))
        make_face()
    redondeo1_piece_4b = extrude(amount=66.5, mode=Mode.PRIVATE)
    redondeo1_piece_4b = split(redondeo1_piece_4b, bisect_by=Plane(origin=(-89.588337219, 12.056415941, 1163.250443922), z_dir=(0.4999999999999994, 0, -0.866025403784439)), keep=Keep.TOP, mode=Mode.PRIVATE)
    redondeo1_piece_4b = split(redondeo1_piece_4b, bisect_by=Plane(origin=(-51.722548844, 12.056415941, 1132.303830155), z_dir=(-1, 0, 0)), keep=Keep.TOP, mode=Mode.PRIVATE)
    redondeo1_piece_4 = redondeo1_piece_4a & redondeo1_piece_4b
    add(redondeo1_piece_4)
    with BuildSketch(Plane(origin=(-51.722548844, 3, 1123.25), x_dir=(0, 0, 1), z_dir=(1, 0, 0))) as redondeo1_piece_5a_section:
        with BuildLine():
            CenterArc((REDONDEO1_R, -REDONDEO1_R), REDONDEO1_R, 90, 90)
            Line((0, -REDONDEO1_R), (-REDONDEO1_R * 0.02, -REDONDEO1_R))
            Line((-REDONDEO1_R * 0.02, -REDONDEO1_R), (-REDONDEO1_R * 0.02, REDONDEO1_R * 0.02))
            Line((-REDONDEO1_R * 0.02, REDONDEO1_R * 0.02), (REDONDEO1_R, REDONDEO1_R * 0.02))
            Line((REDONDEO1_R, REDONDEO1_R * 0.02), (REDONDEO1_R, 0))
        make_face()
    redondeo1_piece_5a = extrude(amount=66.5, mode=Mode.PRIVATE)
    redondeo1_piece_5a = split(redondeo1_piece_5a, bisect_by=Plane(origin=(-25.222548844, 12.055804571, 1132.305804571), z_dir=(1, 0, 0)), keep=Keep.TOP, mode=Mode.PRIVATE)
    with BuildSketch(Plane(origin=(-25.222548844, 3, 1163.25), x_dir=(1, 0, 0), z_dir=(0, 0, -1))) as redondeo1_piece_5b_section:
        with BuildLine():
            CenterArc((REDONDEO1_R, -REDONDEO1_R), REDONDEO1_R, 90, 90)
            Line((0, -REDONDEO1_R), (-REDONDEO1_R * 0.02, -REDONDEO1_R))
            Line((-REDONDEO1_R * 0.02, -REDONDEO1_R), (-REDONDEO1_R * 0.02, REDONDEO1_R * 0.02))
            Line((-REDONDEO1_R * 0.02, REDONDEO1_R * 0.02), (REDONDEO1_R, REDONDEO1_R * 0.02))
            Line((REDONDEO1_R, REDONDEO1_R * 0.02), (REDONDEO1_R, 0))
        make_face()
    redondeo1_piece_5b = extrude(amount=66.5, mode=Mode.PRIVATE)
    redondeo1_piece_5b = split(redondeo1_piece_5b, bisect_by=Plane(origin=(-16.166744273, 12.055804571, 1123.25), z_dir=(0, 0, 1)), keep=Keep.TOP, mode=Mode.PRIVATE)
    redondeo1_piece_5 = redondeo1_piece_5a & redondeo1_piece_5b
    add(redondeo1_piece_5)

    # Croquis3 → Saliente-Extruir3 (add)
    with BuildSketch(Plane(origin=(0, 0, 0), x_dir=(1, 0, 0), z_dir=(0, 1, 0))):
        with Locations((-38.472548844, -1110)):
            Rectangle(CROQUIS3_W, CROQUIS3_H)
    extrude(amount=SALIENTE_EXTRUIR3_DEPTH)

    # Croquis5 → Cortar-Extruir1 (cut, two sides: drawn at the far end of the back side and taken through both)
    with BuildSketch(Plane(origin=(0, 12, 0), x_dir=(1, 0, 0), z_dir=(0, 1, 0)).offset(-CORTAR_EXTRUIR1_DEPTH_BACK)):
        with Locations(Location((-38.472548844, -1110, 0), (0, 0, 270))):
            Circle(CROQUIS5_R)
    extrude(amount=CORTAR_EXTRUIR1_DEPTH + CORTAR_EXTRUIR1_DEPTH_BACK, mode=Mode.SUBTRACT)

    # Croquis6 → Cortar-Extruir2 (cut)
    with BuildSketch(Plane(origin=(0, 12, 0), x_dir=(1, 0, 0), z_dir=(0, 1, 0))):
        Polygon((-38.472548844, -1102.148036339), (-45.272548844, -1106.07401817), (-45.272548844, -1113.92598183), (-38.472548844, -1117.851963661), (-31.672548844, -1113.92598183), (-31.672548844, -1106.07401817), align=None)
    extrude(amount=-CORTAR_EXTRUIR2_DEPTH, mode=Mode.SUBTRACT)

    # Croquis7 → Saliente-Extruir4 (add)
    with BuildSketch(Plane(origin=(0, 12, 0), x_dir=(1, 0, 0), z_dir=(0, 1, 0))):
        with Locations((-38.472548844, -1100.6)):
            Rectangle(CROQUIS7_W, CROQUIS7_H)
        with Locations((-47.472548844, -1110)):
            Rectangle(CROQUIS7_W_2, CROQUIS7_H_2)
        with Locations((-38.472548844, -1119.4)):
            Rectangle(CROQUIS7_W, CROQUIS7_H)
        with Locations((-29.472548844, -1110)):
            Rectangle(CROQUIS7_W_2, CROQUIS7_H_2)
    extrude(amount=SALIENTE_EXTRUIR4_DEPTH)

    # Croquis8 → Cortar-Extruir4 (cut, two sides: drawn at the far end of the back side and taken through both)
    with BuildSketch(Plane.XY.offset(1123.25).offset(-CORTAR_EXTRUIR4_DEPTH_BACK)):
        with Locations((-38.472548844, 113)):
            Circle(CROQUIS8_R)
    extrude(amount=CORTAR_EXTRUIR4_DEPTH + CORTAR_EXTRUIR4_DEPTH_BACK, mode=Mode.SUBTRACT)

    # Croquis9 → Cortar-Extruir5 (cut, through all)
    with BuildSketch(Plane(origin=(0, 3, 0), x_dir=(1, 0, 0), z_dir=(0, 1, 0))):
        with Locations(Location((-27.090664648, -1048.332987398, 0), (0, 0, 270))):
            Circle(CROQUIS9_R)
        with Locations(Location((-106.428532016, -1128.141321277, 0), (0, 0, 270))):
            Circle(CROQUIS9_R)
        with Locations(Location((-55.03760272, -1173.573045968, 0), (0, 0, 270))):
            Circle(CROQUIS9_R)
        with Locations(Location((-21.412673883, -1173.573045968, 0), (0, 0, 270))):
            Circle(CROQUIS9_R)
        with Locations(Location((35.966198897, -1128.141321277, 0), (0, 0, 270))):
            Circle(CROQUIS9_R)
    extrude(amount=-CORTAR_EXTRUIR5_DEPTH, mode=Mode.SUBTRACT)


solid = part.part
